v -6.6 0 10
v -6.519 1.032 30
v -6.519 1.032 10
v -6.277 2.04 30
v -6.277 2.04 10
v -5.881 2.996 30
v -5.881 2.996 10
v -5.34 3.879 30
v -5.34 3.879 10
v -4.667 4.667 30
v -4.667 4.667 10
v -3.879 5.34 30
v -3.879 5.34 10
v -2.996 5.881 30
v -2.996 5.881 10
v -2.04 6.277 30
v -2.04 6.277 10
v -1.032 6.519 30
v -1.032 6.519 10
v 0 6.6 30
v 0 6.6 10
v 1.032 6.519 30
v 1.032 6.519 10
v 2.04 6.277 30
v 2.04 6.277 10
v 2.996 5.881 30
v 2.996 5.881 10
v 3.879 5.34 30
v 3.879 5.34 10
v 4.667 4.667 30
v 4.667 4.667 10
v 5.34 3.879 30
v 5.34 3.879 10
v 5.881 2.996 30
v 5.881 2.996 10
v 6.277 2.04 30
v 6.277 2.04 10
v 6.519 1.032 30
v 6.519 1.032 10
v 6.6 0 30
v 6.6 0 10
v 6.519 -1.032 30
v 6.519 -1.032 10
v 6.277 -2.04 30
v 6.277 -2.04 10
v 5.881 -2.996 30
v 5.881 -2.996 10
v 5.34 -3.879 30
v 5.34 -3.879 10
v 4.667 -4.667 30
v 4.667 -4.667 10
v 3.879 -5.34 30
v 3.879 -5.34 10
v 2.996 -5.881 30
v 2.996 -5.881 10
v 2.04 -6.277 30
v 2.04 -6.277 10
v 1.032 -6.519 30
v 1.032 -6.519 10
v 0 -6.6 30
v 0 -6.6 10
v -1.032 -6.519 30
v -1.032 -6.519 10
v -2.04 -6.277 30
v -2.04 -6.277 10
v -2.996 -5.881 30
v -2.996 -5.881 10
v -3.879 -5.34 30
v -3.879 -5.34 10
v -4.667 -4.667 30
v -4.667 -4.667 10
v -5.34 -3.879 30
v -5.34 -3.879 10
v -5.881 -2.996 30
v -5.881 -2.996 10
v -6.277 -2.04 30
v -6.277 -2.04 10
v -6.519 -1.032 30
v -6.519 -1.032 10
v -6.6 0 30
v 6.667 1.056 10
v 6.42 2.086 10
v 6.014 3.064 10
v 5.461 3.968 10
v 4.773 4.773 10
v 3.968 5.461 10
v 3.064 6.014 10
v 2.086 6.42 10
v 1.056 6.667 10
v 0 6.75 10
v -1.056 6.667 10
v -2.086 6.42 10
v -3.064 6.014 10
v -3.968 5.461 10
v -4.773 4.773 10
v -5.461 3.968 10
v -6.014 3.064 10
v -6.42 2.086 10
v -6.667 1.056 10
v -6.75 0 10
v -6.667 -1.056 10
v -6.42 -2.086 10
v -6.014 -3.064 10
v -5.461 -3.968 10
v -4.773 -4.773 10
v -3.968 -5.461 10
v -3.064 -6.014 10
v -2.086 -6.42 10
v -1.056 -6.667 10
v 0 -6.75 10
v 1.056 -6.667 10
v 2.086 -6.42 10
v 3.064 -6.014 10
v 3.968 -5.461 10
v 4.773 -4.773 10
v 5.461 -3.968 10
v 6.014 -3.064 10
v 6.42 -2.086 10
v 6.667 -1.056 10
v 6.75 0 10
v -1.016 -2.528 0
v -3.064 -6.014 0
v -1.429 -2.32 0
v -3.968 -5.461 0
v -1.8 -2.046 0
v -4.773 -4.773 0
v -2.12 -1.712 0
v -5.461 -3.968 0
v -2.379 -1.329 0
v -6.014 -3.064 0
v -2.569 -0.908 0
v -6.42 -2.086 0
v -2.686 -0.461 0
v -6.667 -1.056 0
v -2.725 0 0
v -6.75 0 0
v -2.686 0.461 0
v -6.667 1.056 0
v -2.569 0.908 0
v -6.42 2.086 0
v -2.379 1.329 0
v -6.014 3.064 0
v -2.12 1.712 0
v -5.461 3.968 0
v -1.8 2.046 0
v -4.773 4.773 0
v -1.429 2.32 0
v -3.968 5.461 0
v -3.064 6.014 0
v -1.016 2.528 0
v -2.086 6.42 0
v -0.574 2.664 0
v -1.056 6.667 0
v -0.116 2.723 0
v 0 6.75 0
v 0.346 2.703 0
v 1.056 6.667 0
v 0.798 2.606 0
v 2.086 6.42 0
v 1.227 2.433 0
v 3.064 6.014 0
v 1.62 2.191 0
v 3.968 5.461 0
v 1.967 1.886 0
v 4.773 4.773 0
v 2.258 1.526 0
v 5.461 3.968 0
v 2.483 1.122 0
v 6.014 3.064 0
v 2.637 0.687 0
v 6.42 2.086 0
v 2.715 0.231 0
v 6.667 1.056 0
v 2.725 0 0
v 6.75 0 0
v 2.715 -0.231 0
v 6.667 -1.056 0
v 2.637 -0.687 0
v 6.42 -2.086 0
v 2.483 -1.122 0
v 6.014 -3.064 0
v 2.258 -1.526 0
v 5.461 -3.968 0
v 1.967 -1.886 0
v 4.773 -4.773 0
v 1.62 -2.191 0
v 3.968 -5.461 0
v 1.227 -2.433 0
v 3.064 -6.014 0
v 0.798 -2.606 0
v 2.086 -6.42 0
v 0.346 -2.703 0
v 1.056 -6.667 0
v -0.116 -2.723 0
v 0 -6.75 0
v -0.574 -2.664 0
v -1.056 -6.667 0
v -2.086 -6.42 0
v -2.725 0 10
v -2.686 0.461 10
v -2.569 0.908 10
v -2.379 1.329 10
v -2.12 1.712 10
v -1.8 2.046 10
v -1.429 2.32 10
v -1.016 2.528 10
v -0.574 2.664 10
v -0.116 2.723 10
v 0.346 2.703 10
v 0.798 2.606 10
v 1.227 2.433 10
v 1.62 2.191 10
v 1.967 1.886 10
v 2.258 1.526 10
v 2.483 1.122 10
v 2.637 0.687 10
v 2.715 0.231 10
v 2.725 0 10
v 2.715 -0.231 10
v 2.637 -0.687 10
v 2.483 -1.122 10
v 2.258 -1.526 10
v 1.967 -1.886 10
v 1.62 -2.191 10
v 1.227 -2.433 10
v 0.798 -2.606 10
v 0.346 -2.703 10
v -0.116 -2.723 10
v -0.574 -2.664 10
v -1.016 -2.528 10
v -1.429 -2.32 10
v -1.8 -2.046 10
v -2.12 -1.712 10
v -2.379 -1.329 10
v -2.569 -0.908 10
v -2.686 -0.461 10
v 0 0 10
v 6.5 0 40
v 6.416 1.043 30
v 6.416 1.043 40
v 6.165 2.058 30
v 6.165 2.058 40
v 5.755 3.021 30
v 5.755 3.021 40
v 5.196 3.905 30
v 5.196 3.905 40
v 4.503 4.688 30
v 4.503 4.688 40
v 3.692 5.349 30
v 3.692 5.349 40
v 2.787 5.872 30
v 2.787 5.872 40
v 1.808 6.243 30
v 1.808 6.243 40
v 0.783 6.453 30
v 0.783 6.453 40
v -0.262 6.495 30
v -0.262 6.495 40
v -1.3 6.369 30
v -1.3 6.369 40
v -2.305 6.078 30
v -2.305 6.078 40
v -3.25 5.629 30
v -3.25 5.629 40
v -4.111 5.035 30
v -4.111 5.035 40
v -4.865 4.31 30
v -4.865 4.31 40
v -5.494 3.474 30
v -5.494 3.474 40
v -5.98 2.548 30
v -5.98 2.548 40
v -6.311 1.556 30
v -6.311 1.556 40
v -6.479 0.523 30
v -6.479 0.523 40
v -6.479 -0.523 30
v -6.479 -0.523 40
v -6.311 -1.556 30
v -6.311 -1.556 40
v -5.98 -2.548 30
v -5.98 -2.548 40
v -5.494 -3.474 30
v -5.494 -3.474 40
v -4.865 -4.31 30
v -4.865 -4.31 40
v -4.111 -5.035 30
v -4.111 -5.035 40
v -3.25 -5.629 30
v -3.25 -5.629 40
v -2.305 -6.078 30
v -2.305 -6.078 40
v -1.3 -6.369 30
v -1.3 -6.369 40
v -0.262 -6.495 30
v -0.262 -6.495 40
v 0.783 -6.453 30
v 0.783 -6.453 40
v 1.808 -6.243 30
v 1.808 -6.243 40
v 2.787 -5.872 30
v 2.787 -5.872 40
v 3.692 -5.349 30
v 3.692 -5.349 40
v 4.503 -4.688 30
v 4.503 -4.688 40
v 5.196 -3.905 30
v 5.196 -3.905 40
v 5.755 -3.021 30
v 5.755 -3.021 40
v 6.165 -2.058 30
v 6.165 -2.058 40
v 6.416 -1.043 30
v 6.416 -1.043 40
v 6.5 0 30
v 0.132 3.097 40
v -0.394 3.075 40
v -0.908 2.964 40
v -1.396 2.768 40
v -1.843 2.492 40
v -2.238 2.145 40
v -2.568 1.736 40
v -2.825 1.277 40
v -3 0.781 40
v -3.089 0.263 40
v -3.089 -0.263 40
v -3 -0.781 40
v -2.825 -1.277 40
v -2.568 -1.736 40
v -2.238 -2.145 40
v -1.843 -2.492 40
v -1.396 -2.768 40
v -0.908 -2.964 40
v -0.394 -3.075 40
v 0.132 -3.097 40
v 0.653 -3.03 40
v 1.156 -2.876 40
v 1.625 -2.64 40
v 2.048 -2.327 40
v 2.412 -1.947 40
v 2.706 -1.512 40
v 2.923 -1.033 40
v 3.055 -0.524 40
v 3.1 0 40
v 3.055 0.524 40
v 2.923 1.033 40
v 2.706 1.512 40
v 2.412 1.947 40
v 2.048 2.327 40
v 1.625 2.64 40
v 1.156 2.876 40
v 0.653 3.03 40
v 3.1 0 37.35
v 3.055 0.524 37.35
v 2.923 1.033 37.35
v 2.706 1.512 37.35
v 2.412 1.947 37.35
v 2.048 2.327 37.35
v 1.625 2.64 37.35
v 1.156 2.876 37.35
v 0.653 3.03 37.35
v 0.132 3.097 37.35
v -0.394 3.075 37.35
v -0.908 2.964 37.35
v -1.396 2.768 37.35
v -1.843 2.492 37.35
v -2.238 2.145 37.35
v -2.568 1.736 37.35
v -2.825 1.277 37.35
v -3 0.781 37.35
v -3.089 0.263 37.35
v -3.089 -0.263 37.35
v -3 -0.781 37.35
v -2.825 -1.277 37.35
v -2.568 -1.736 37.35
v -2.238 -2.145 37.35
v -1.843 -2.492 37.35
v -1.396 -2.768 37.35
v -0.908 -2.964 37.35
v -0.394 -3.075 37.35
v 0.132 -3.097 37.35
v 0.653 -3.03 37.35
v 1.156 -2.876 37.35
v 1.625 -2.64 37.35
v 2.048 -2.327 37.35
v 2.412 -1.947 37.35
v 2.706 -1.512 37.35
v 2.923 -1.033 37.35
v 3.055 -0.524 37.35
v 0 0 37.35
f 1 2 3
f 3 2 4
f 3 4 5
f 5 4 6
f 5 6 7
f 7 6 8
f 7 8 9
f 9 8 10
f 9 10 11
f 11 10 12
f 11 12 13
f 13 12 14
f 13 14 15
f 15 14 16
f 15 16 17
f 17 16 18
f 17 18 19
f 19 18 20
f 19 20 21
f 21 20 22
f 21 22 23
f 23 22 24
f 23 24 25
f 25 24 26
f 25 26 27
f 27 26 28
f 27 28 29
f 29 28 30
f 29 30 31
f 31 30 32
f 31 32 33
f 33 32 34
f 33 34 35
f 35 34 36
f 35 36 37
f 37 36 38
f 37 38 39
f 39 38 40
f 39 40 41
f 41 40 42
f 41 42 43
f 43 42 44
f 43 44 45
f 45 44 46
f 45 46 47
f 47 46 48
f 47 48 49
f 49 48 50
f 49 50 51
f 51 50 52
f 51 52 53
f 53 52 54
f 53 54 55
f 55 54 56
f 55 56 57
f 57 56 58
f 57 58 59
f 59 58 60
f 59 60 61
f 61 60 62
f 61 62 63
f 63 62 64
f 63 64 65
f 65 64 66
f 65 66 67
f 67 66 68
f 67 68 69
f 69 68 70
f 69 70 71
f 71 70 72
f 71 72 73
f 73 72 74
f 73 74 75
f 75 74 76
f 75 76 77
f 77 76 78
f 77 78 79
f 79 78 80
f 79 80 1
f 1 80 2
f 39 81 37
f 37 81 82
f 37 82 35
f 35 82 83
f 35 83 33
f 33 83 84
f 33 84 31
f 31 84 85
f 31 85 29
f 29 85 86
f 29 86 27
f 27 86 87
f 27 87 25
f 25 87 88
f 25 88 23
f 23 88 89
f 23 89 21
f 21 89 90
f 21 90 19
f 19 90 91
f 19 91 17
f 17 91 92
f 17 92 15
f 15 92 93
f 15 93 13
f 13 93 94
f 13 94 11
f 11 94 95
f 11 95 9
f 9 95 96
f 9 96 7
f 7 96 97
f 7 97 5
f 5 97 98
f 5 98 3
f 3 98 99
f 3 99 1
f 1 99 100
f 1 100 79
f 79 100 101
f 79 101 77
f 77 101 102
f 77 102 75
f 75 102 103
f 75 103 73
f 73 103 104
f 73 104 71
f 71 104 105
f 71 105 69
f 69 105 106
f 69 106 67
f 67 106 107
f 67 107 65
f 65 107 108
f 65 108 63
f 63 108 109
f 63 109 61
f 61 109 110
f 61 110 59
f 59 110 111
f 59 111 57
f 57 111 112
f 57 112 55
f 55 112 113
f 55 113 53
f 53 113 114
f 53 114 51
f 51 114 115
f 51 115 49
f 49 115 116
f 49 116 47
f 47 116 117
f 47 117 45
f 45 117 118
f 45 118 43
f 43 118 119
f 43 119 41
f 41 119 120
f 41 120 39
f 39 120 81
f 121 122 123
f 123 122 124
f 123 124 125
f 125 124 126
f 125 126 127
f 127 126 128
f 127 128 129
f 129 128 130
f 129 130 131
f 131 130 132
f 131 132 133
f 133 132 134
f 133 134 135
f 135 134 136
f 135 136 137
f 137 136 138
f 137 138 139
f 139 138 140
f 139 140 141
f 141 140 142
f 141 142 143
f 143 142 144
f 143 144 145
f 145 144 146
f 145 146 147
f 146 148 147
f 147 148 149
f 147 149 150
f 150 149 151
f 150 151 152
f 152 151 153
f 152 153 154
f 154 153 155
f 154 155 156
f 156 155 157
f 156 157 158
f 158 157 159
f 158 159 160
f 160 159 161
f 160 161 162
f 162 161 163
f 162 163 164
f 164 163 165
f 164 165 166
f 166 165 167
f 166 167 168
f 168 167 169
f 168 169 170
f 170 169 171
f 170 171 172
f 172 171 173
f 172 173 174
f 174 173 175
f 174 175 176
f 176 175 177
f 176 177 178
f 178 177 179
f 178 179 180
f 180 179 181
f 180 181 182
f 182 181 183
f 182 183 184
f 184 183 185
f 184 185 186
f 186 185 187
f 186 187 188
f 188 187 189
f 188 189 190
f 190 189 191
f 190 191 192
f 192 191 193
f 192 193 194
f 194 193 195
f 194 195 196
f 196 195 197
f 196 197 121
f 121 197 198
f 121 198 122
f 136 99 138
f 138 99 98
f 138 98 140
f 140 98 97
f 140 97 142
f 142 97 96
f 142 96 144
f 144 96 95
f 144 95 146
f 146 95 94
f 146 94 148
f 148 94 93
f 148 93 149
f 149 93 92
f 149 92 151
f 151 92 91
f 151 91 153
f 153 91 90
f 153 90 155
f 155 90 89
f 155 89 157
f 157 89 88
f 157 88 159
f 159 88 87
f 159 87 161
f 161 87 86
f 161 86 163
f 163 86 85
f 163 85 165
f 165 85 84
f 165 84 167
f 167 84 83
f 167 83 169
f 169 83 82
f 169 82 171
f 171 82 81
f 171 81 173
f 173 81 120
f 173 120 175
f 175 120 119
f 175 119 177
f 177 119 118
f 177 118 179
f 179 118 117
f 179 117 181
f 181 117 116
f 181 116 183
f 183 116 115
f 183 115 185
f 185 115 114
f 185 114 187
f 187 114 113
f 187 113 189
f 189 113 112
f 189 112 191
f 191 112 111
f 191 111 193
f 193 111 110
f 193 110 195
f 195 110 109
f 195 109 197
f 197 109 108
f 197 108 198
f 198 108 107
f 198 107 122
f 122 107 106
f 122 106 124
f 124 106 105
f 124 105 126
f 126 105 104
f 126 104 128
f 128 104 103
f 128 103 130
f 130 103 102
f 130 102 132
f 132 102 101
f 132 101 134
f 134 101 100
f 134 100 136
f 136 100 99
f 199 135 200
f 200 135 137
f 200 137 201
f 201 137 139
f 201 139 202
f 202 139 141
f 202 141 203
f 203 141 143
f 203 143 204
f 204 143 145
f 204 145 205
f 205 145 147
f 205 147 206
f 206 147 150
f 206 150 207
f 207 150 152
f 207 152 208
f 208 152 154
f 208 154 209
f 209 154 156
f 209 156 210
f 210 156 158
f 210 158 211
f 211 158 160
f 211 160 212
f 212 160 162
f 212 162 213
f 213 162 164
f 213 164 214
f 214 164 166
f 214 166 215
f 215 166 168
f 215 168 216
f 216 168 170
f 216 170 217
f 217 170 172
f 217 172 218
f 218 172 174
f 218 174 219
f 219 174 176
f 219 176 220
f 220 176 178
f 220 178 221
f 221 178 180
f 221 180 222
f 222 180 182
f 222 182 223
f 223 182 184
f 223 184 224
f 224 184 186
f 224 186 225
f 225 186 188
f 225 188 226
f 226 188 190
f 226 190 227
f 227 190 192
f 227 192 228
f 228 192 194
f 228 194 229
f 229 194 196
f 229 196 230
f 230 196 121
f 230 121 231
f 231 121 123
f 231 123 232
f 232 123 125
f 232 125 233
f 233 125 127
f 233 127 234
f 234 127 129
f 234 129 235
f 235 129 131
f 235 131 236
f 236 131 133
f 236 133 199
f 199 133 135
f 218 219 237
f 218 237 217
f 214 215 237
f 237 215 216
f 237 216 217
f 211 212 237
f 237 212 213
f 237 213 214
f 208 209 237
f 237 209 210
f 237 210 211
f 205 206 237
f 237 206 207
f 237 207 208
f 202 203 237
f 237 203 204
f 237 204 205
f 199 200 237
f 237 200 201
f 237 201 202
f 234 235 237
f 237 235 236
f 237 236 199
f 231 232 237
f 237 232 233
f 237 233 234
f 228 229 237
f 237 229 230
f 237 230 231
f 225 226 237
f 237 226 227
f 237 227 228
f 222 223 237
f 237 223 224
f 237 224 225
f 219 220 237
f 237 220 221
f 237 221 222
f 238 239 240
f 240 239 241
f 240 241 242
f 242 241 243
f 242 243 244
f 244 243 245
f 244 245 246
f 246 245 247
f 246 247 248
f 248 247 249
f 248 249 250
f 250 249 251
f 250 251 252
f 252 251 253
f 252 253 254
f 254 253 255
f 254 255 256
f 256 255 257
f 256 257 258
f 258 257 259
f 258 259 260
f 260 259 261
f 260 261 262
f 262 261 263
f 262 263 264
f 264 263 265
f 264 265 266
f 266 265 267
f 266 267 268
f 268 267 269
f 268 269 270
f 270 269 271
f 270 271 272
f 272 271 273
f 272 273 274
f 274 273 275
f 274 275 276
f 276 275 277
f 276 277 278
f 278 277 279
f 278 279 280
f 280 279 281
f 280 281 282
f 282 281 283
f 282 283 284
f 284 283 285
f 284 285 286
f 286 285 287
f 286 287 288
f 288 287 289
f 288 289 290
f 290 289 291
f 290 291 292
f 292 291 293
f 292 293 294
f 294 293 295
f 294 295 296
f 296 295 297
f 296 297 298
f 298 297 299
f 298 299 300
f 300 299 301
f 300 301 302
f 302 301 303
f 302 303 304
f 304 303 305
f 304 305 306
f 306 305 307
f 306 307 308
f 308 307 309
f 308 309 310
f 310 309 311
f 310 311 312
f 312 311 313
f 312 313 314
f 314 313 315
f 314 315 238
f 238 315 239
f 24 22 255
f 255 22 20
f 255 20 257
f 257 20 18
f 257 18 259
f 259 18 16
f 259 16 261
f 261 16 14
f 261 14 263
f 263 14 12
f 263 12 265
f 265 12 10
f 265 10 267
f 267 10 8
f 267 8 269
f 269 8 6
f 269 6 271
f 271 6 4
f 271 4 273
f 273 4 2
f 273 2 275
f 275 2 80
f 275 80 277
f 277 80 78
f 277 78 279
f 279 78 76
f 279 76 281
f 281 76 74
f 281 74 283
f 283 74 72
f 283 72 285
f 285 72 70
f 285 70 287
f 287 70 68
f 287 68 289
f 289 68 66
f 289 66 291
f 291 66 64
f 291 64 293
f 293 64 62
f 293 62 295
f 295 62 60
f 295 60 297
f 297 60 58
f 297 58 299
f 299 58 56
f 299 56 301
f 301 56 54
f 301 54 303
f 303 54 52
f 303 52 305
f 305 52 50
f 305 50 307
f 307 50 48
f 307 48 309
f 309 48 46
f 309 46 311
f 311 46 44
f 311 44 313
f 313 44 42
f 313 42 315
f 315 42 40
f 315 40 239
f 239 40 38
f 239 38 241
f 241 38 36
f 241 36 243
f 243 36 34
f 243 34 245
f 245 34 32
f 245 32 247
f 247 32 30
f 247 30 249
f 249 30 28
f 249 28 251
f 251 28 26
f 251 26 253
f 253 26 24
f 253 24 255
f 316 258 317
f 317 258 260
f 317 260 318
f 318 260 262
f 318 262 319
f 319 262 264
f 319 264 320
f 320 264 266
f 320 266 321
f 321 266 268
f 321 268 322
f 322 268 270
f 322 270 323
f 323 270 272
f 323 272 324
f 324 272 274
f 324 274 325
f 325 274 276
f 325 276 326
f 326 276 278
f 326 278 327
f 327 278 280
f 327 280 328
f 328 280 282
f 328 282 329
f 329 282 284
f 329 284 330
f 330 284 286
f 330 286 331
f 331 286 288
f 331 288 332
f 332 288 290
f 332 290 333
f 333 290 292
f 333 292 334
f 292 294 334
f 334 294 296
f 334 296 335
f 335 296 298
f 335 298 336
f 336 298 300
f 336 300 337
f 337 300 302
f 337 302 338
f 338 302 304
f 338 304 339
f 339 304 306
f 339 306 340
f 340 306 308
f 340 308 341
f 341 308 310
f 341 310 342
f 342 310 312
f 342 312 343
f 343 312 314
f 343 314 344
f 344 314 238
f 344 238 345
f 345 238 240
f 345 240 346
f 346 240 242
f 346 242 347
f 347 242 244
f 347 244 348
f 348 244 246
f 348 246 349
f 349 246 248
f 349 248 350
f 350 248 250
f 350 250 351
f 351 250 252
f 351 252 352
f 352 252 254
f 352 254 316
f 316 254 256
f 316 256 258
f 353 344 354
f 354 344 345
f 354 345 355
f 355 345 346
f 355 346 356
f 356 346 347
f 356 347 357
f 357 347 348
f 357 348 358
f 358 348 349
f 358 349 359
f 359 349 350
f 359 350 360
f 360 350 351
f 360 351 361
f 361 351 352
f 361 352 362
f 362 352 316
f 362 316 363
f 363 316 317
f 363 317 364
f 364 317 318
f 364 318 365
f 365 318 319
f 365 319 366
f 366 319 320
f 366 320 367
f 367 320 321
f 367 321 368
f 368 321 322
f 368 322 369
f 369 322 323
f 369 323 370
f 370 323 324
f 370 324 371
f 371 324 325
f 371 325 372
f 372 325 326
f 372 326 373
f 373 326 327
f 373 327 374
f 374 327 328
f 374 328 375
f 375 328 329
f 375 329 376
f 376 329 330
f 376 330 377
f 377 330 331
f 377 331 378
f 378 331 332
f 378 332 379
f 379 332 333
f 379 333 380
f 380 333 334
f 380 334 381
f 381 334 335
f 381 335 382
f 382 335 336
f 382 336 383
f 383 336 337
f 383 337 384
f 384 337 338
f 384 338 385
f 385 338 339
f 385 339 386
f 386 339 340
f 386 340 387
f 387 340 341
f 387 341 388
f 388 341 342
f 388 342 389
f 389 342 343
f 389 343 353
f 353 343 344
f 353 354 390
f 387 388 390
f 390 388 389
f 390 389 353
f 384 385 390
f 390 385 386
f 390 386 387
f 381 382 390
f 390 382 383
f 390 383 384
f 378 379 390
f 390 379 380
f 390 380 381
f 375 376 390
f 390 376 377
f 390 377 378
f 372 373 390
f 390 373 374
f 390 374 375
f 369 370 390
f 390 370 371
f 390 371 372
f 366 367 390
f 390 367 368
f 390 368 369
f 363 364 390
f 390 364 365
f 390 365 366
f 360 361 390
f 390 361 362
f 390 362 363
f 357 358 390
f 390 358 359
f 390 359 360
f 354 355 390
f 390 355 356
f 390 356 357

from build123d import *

# Parameters (mm, degrees)
SKETCH1_R           = 6.75
SKETCH1_R_2         = 2.725
BOSS_EXTRUDE2_DEPTH = 10
SKETCH2_R           = 6.6
BOSS_EXTRUDE3_DEPTH = 30
CUT_EXTRUDE1_START  = -10
SKETCH3_R           = 6.6
SKETCH3_R_2         = 6.5
CUT_EXTRUDE1_DEPTH  = 10
SKETCH4_R           = 3.1
CUT_EXTRUDE3_DEPTH  = 2.65


with BuildPart() as part:
    # Sketch1 → Boss-Extrude2 (new body)
    with BuildSketch(Plane.XY):
        Circle(SKETCH1_R)
        Circle(SKETCH1_R_2, mode=Mode.SUBTRACT)
    extrude(amount=BOSS_EXTRUDE2_DEPTH)

    # Sketch2 → Boss-Extrude3 (add)
    with BuildSketch(Plane.XY.offset(10)):
        Circle(SKETCH2_R)
    extrude(amount=BOSS_EXTRUDE3_DEPTH)

    # Sketch3 → Cut-Extrude1 (cut)
    with BuildSketch(Plane.XY.offset(40).offset(CUT_EXTRUDE1_START)):
        Circle(SKETCH3_R)
        Circle(SKETCH3_R_2, mode=Mode.SUBTRACT)
    extrude(amount=CUT_EXTRUDE1_DEPTH, mode=Mode.SUBTRACT)

    # Sketch4 → Cut-Extrude3 (cut)
    with BuildSketch(Plane.XY.offset(40)):
        Circle(SKETCH4_R)
    extrude(amount=-CUT_EXTRUDE3_DEPTH, mode=Mode.SUBTRACT)


solid = part.part
